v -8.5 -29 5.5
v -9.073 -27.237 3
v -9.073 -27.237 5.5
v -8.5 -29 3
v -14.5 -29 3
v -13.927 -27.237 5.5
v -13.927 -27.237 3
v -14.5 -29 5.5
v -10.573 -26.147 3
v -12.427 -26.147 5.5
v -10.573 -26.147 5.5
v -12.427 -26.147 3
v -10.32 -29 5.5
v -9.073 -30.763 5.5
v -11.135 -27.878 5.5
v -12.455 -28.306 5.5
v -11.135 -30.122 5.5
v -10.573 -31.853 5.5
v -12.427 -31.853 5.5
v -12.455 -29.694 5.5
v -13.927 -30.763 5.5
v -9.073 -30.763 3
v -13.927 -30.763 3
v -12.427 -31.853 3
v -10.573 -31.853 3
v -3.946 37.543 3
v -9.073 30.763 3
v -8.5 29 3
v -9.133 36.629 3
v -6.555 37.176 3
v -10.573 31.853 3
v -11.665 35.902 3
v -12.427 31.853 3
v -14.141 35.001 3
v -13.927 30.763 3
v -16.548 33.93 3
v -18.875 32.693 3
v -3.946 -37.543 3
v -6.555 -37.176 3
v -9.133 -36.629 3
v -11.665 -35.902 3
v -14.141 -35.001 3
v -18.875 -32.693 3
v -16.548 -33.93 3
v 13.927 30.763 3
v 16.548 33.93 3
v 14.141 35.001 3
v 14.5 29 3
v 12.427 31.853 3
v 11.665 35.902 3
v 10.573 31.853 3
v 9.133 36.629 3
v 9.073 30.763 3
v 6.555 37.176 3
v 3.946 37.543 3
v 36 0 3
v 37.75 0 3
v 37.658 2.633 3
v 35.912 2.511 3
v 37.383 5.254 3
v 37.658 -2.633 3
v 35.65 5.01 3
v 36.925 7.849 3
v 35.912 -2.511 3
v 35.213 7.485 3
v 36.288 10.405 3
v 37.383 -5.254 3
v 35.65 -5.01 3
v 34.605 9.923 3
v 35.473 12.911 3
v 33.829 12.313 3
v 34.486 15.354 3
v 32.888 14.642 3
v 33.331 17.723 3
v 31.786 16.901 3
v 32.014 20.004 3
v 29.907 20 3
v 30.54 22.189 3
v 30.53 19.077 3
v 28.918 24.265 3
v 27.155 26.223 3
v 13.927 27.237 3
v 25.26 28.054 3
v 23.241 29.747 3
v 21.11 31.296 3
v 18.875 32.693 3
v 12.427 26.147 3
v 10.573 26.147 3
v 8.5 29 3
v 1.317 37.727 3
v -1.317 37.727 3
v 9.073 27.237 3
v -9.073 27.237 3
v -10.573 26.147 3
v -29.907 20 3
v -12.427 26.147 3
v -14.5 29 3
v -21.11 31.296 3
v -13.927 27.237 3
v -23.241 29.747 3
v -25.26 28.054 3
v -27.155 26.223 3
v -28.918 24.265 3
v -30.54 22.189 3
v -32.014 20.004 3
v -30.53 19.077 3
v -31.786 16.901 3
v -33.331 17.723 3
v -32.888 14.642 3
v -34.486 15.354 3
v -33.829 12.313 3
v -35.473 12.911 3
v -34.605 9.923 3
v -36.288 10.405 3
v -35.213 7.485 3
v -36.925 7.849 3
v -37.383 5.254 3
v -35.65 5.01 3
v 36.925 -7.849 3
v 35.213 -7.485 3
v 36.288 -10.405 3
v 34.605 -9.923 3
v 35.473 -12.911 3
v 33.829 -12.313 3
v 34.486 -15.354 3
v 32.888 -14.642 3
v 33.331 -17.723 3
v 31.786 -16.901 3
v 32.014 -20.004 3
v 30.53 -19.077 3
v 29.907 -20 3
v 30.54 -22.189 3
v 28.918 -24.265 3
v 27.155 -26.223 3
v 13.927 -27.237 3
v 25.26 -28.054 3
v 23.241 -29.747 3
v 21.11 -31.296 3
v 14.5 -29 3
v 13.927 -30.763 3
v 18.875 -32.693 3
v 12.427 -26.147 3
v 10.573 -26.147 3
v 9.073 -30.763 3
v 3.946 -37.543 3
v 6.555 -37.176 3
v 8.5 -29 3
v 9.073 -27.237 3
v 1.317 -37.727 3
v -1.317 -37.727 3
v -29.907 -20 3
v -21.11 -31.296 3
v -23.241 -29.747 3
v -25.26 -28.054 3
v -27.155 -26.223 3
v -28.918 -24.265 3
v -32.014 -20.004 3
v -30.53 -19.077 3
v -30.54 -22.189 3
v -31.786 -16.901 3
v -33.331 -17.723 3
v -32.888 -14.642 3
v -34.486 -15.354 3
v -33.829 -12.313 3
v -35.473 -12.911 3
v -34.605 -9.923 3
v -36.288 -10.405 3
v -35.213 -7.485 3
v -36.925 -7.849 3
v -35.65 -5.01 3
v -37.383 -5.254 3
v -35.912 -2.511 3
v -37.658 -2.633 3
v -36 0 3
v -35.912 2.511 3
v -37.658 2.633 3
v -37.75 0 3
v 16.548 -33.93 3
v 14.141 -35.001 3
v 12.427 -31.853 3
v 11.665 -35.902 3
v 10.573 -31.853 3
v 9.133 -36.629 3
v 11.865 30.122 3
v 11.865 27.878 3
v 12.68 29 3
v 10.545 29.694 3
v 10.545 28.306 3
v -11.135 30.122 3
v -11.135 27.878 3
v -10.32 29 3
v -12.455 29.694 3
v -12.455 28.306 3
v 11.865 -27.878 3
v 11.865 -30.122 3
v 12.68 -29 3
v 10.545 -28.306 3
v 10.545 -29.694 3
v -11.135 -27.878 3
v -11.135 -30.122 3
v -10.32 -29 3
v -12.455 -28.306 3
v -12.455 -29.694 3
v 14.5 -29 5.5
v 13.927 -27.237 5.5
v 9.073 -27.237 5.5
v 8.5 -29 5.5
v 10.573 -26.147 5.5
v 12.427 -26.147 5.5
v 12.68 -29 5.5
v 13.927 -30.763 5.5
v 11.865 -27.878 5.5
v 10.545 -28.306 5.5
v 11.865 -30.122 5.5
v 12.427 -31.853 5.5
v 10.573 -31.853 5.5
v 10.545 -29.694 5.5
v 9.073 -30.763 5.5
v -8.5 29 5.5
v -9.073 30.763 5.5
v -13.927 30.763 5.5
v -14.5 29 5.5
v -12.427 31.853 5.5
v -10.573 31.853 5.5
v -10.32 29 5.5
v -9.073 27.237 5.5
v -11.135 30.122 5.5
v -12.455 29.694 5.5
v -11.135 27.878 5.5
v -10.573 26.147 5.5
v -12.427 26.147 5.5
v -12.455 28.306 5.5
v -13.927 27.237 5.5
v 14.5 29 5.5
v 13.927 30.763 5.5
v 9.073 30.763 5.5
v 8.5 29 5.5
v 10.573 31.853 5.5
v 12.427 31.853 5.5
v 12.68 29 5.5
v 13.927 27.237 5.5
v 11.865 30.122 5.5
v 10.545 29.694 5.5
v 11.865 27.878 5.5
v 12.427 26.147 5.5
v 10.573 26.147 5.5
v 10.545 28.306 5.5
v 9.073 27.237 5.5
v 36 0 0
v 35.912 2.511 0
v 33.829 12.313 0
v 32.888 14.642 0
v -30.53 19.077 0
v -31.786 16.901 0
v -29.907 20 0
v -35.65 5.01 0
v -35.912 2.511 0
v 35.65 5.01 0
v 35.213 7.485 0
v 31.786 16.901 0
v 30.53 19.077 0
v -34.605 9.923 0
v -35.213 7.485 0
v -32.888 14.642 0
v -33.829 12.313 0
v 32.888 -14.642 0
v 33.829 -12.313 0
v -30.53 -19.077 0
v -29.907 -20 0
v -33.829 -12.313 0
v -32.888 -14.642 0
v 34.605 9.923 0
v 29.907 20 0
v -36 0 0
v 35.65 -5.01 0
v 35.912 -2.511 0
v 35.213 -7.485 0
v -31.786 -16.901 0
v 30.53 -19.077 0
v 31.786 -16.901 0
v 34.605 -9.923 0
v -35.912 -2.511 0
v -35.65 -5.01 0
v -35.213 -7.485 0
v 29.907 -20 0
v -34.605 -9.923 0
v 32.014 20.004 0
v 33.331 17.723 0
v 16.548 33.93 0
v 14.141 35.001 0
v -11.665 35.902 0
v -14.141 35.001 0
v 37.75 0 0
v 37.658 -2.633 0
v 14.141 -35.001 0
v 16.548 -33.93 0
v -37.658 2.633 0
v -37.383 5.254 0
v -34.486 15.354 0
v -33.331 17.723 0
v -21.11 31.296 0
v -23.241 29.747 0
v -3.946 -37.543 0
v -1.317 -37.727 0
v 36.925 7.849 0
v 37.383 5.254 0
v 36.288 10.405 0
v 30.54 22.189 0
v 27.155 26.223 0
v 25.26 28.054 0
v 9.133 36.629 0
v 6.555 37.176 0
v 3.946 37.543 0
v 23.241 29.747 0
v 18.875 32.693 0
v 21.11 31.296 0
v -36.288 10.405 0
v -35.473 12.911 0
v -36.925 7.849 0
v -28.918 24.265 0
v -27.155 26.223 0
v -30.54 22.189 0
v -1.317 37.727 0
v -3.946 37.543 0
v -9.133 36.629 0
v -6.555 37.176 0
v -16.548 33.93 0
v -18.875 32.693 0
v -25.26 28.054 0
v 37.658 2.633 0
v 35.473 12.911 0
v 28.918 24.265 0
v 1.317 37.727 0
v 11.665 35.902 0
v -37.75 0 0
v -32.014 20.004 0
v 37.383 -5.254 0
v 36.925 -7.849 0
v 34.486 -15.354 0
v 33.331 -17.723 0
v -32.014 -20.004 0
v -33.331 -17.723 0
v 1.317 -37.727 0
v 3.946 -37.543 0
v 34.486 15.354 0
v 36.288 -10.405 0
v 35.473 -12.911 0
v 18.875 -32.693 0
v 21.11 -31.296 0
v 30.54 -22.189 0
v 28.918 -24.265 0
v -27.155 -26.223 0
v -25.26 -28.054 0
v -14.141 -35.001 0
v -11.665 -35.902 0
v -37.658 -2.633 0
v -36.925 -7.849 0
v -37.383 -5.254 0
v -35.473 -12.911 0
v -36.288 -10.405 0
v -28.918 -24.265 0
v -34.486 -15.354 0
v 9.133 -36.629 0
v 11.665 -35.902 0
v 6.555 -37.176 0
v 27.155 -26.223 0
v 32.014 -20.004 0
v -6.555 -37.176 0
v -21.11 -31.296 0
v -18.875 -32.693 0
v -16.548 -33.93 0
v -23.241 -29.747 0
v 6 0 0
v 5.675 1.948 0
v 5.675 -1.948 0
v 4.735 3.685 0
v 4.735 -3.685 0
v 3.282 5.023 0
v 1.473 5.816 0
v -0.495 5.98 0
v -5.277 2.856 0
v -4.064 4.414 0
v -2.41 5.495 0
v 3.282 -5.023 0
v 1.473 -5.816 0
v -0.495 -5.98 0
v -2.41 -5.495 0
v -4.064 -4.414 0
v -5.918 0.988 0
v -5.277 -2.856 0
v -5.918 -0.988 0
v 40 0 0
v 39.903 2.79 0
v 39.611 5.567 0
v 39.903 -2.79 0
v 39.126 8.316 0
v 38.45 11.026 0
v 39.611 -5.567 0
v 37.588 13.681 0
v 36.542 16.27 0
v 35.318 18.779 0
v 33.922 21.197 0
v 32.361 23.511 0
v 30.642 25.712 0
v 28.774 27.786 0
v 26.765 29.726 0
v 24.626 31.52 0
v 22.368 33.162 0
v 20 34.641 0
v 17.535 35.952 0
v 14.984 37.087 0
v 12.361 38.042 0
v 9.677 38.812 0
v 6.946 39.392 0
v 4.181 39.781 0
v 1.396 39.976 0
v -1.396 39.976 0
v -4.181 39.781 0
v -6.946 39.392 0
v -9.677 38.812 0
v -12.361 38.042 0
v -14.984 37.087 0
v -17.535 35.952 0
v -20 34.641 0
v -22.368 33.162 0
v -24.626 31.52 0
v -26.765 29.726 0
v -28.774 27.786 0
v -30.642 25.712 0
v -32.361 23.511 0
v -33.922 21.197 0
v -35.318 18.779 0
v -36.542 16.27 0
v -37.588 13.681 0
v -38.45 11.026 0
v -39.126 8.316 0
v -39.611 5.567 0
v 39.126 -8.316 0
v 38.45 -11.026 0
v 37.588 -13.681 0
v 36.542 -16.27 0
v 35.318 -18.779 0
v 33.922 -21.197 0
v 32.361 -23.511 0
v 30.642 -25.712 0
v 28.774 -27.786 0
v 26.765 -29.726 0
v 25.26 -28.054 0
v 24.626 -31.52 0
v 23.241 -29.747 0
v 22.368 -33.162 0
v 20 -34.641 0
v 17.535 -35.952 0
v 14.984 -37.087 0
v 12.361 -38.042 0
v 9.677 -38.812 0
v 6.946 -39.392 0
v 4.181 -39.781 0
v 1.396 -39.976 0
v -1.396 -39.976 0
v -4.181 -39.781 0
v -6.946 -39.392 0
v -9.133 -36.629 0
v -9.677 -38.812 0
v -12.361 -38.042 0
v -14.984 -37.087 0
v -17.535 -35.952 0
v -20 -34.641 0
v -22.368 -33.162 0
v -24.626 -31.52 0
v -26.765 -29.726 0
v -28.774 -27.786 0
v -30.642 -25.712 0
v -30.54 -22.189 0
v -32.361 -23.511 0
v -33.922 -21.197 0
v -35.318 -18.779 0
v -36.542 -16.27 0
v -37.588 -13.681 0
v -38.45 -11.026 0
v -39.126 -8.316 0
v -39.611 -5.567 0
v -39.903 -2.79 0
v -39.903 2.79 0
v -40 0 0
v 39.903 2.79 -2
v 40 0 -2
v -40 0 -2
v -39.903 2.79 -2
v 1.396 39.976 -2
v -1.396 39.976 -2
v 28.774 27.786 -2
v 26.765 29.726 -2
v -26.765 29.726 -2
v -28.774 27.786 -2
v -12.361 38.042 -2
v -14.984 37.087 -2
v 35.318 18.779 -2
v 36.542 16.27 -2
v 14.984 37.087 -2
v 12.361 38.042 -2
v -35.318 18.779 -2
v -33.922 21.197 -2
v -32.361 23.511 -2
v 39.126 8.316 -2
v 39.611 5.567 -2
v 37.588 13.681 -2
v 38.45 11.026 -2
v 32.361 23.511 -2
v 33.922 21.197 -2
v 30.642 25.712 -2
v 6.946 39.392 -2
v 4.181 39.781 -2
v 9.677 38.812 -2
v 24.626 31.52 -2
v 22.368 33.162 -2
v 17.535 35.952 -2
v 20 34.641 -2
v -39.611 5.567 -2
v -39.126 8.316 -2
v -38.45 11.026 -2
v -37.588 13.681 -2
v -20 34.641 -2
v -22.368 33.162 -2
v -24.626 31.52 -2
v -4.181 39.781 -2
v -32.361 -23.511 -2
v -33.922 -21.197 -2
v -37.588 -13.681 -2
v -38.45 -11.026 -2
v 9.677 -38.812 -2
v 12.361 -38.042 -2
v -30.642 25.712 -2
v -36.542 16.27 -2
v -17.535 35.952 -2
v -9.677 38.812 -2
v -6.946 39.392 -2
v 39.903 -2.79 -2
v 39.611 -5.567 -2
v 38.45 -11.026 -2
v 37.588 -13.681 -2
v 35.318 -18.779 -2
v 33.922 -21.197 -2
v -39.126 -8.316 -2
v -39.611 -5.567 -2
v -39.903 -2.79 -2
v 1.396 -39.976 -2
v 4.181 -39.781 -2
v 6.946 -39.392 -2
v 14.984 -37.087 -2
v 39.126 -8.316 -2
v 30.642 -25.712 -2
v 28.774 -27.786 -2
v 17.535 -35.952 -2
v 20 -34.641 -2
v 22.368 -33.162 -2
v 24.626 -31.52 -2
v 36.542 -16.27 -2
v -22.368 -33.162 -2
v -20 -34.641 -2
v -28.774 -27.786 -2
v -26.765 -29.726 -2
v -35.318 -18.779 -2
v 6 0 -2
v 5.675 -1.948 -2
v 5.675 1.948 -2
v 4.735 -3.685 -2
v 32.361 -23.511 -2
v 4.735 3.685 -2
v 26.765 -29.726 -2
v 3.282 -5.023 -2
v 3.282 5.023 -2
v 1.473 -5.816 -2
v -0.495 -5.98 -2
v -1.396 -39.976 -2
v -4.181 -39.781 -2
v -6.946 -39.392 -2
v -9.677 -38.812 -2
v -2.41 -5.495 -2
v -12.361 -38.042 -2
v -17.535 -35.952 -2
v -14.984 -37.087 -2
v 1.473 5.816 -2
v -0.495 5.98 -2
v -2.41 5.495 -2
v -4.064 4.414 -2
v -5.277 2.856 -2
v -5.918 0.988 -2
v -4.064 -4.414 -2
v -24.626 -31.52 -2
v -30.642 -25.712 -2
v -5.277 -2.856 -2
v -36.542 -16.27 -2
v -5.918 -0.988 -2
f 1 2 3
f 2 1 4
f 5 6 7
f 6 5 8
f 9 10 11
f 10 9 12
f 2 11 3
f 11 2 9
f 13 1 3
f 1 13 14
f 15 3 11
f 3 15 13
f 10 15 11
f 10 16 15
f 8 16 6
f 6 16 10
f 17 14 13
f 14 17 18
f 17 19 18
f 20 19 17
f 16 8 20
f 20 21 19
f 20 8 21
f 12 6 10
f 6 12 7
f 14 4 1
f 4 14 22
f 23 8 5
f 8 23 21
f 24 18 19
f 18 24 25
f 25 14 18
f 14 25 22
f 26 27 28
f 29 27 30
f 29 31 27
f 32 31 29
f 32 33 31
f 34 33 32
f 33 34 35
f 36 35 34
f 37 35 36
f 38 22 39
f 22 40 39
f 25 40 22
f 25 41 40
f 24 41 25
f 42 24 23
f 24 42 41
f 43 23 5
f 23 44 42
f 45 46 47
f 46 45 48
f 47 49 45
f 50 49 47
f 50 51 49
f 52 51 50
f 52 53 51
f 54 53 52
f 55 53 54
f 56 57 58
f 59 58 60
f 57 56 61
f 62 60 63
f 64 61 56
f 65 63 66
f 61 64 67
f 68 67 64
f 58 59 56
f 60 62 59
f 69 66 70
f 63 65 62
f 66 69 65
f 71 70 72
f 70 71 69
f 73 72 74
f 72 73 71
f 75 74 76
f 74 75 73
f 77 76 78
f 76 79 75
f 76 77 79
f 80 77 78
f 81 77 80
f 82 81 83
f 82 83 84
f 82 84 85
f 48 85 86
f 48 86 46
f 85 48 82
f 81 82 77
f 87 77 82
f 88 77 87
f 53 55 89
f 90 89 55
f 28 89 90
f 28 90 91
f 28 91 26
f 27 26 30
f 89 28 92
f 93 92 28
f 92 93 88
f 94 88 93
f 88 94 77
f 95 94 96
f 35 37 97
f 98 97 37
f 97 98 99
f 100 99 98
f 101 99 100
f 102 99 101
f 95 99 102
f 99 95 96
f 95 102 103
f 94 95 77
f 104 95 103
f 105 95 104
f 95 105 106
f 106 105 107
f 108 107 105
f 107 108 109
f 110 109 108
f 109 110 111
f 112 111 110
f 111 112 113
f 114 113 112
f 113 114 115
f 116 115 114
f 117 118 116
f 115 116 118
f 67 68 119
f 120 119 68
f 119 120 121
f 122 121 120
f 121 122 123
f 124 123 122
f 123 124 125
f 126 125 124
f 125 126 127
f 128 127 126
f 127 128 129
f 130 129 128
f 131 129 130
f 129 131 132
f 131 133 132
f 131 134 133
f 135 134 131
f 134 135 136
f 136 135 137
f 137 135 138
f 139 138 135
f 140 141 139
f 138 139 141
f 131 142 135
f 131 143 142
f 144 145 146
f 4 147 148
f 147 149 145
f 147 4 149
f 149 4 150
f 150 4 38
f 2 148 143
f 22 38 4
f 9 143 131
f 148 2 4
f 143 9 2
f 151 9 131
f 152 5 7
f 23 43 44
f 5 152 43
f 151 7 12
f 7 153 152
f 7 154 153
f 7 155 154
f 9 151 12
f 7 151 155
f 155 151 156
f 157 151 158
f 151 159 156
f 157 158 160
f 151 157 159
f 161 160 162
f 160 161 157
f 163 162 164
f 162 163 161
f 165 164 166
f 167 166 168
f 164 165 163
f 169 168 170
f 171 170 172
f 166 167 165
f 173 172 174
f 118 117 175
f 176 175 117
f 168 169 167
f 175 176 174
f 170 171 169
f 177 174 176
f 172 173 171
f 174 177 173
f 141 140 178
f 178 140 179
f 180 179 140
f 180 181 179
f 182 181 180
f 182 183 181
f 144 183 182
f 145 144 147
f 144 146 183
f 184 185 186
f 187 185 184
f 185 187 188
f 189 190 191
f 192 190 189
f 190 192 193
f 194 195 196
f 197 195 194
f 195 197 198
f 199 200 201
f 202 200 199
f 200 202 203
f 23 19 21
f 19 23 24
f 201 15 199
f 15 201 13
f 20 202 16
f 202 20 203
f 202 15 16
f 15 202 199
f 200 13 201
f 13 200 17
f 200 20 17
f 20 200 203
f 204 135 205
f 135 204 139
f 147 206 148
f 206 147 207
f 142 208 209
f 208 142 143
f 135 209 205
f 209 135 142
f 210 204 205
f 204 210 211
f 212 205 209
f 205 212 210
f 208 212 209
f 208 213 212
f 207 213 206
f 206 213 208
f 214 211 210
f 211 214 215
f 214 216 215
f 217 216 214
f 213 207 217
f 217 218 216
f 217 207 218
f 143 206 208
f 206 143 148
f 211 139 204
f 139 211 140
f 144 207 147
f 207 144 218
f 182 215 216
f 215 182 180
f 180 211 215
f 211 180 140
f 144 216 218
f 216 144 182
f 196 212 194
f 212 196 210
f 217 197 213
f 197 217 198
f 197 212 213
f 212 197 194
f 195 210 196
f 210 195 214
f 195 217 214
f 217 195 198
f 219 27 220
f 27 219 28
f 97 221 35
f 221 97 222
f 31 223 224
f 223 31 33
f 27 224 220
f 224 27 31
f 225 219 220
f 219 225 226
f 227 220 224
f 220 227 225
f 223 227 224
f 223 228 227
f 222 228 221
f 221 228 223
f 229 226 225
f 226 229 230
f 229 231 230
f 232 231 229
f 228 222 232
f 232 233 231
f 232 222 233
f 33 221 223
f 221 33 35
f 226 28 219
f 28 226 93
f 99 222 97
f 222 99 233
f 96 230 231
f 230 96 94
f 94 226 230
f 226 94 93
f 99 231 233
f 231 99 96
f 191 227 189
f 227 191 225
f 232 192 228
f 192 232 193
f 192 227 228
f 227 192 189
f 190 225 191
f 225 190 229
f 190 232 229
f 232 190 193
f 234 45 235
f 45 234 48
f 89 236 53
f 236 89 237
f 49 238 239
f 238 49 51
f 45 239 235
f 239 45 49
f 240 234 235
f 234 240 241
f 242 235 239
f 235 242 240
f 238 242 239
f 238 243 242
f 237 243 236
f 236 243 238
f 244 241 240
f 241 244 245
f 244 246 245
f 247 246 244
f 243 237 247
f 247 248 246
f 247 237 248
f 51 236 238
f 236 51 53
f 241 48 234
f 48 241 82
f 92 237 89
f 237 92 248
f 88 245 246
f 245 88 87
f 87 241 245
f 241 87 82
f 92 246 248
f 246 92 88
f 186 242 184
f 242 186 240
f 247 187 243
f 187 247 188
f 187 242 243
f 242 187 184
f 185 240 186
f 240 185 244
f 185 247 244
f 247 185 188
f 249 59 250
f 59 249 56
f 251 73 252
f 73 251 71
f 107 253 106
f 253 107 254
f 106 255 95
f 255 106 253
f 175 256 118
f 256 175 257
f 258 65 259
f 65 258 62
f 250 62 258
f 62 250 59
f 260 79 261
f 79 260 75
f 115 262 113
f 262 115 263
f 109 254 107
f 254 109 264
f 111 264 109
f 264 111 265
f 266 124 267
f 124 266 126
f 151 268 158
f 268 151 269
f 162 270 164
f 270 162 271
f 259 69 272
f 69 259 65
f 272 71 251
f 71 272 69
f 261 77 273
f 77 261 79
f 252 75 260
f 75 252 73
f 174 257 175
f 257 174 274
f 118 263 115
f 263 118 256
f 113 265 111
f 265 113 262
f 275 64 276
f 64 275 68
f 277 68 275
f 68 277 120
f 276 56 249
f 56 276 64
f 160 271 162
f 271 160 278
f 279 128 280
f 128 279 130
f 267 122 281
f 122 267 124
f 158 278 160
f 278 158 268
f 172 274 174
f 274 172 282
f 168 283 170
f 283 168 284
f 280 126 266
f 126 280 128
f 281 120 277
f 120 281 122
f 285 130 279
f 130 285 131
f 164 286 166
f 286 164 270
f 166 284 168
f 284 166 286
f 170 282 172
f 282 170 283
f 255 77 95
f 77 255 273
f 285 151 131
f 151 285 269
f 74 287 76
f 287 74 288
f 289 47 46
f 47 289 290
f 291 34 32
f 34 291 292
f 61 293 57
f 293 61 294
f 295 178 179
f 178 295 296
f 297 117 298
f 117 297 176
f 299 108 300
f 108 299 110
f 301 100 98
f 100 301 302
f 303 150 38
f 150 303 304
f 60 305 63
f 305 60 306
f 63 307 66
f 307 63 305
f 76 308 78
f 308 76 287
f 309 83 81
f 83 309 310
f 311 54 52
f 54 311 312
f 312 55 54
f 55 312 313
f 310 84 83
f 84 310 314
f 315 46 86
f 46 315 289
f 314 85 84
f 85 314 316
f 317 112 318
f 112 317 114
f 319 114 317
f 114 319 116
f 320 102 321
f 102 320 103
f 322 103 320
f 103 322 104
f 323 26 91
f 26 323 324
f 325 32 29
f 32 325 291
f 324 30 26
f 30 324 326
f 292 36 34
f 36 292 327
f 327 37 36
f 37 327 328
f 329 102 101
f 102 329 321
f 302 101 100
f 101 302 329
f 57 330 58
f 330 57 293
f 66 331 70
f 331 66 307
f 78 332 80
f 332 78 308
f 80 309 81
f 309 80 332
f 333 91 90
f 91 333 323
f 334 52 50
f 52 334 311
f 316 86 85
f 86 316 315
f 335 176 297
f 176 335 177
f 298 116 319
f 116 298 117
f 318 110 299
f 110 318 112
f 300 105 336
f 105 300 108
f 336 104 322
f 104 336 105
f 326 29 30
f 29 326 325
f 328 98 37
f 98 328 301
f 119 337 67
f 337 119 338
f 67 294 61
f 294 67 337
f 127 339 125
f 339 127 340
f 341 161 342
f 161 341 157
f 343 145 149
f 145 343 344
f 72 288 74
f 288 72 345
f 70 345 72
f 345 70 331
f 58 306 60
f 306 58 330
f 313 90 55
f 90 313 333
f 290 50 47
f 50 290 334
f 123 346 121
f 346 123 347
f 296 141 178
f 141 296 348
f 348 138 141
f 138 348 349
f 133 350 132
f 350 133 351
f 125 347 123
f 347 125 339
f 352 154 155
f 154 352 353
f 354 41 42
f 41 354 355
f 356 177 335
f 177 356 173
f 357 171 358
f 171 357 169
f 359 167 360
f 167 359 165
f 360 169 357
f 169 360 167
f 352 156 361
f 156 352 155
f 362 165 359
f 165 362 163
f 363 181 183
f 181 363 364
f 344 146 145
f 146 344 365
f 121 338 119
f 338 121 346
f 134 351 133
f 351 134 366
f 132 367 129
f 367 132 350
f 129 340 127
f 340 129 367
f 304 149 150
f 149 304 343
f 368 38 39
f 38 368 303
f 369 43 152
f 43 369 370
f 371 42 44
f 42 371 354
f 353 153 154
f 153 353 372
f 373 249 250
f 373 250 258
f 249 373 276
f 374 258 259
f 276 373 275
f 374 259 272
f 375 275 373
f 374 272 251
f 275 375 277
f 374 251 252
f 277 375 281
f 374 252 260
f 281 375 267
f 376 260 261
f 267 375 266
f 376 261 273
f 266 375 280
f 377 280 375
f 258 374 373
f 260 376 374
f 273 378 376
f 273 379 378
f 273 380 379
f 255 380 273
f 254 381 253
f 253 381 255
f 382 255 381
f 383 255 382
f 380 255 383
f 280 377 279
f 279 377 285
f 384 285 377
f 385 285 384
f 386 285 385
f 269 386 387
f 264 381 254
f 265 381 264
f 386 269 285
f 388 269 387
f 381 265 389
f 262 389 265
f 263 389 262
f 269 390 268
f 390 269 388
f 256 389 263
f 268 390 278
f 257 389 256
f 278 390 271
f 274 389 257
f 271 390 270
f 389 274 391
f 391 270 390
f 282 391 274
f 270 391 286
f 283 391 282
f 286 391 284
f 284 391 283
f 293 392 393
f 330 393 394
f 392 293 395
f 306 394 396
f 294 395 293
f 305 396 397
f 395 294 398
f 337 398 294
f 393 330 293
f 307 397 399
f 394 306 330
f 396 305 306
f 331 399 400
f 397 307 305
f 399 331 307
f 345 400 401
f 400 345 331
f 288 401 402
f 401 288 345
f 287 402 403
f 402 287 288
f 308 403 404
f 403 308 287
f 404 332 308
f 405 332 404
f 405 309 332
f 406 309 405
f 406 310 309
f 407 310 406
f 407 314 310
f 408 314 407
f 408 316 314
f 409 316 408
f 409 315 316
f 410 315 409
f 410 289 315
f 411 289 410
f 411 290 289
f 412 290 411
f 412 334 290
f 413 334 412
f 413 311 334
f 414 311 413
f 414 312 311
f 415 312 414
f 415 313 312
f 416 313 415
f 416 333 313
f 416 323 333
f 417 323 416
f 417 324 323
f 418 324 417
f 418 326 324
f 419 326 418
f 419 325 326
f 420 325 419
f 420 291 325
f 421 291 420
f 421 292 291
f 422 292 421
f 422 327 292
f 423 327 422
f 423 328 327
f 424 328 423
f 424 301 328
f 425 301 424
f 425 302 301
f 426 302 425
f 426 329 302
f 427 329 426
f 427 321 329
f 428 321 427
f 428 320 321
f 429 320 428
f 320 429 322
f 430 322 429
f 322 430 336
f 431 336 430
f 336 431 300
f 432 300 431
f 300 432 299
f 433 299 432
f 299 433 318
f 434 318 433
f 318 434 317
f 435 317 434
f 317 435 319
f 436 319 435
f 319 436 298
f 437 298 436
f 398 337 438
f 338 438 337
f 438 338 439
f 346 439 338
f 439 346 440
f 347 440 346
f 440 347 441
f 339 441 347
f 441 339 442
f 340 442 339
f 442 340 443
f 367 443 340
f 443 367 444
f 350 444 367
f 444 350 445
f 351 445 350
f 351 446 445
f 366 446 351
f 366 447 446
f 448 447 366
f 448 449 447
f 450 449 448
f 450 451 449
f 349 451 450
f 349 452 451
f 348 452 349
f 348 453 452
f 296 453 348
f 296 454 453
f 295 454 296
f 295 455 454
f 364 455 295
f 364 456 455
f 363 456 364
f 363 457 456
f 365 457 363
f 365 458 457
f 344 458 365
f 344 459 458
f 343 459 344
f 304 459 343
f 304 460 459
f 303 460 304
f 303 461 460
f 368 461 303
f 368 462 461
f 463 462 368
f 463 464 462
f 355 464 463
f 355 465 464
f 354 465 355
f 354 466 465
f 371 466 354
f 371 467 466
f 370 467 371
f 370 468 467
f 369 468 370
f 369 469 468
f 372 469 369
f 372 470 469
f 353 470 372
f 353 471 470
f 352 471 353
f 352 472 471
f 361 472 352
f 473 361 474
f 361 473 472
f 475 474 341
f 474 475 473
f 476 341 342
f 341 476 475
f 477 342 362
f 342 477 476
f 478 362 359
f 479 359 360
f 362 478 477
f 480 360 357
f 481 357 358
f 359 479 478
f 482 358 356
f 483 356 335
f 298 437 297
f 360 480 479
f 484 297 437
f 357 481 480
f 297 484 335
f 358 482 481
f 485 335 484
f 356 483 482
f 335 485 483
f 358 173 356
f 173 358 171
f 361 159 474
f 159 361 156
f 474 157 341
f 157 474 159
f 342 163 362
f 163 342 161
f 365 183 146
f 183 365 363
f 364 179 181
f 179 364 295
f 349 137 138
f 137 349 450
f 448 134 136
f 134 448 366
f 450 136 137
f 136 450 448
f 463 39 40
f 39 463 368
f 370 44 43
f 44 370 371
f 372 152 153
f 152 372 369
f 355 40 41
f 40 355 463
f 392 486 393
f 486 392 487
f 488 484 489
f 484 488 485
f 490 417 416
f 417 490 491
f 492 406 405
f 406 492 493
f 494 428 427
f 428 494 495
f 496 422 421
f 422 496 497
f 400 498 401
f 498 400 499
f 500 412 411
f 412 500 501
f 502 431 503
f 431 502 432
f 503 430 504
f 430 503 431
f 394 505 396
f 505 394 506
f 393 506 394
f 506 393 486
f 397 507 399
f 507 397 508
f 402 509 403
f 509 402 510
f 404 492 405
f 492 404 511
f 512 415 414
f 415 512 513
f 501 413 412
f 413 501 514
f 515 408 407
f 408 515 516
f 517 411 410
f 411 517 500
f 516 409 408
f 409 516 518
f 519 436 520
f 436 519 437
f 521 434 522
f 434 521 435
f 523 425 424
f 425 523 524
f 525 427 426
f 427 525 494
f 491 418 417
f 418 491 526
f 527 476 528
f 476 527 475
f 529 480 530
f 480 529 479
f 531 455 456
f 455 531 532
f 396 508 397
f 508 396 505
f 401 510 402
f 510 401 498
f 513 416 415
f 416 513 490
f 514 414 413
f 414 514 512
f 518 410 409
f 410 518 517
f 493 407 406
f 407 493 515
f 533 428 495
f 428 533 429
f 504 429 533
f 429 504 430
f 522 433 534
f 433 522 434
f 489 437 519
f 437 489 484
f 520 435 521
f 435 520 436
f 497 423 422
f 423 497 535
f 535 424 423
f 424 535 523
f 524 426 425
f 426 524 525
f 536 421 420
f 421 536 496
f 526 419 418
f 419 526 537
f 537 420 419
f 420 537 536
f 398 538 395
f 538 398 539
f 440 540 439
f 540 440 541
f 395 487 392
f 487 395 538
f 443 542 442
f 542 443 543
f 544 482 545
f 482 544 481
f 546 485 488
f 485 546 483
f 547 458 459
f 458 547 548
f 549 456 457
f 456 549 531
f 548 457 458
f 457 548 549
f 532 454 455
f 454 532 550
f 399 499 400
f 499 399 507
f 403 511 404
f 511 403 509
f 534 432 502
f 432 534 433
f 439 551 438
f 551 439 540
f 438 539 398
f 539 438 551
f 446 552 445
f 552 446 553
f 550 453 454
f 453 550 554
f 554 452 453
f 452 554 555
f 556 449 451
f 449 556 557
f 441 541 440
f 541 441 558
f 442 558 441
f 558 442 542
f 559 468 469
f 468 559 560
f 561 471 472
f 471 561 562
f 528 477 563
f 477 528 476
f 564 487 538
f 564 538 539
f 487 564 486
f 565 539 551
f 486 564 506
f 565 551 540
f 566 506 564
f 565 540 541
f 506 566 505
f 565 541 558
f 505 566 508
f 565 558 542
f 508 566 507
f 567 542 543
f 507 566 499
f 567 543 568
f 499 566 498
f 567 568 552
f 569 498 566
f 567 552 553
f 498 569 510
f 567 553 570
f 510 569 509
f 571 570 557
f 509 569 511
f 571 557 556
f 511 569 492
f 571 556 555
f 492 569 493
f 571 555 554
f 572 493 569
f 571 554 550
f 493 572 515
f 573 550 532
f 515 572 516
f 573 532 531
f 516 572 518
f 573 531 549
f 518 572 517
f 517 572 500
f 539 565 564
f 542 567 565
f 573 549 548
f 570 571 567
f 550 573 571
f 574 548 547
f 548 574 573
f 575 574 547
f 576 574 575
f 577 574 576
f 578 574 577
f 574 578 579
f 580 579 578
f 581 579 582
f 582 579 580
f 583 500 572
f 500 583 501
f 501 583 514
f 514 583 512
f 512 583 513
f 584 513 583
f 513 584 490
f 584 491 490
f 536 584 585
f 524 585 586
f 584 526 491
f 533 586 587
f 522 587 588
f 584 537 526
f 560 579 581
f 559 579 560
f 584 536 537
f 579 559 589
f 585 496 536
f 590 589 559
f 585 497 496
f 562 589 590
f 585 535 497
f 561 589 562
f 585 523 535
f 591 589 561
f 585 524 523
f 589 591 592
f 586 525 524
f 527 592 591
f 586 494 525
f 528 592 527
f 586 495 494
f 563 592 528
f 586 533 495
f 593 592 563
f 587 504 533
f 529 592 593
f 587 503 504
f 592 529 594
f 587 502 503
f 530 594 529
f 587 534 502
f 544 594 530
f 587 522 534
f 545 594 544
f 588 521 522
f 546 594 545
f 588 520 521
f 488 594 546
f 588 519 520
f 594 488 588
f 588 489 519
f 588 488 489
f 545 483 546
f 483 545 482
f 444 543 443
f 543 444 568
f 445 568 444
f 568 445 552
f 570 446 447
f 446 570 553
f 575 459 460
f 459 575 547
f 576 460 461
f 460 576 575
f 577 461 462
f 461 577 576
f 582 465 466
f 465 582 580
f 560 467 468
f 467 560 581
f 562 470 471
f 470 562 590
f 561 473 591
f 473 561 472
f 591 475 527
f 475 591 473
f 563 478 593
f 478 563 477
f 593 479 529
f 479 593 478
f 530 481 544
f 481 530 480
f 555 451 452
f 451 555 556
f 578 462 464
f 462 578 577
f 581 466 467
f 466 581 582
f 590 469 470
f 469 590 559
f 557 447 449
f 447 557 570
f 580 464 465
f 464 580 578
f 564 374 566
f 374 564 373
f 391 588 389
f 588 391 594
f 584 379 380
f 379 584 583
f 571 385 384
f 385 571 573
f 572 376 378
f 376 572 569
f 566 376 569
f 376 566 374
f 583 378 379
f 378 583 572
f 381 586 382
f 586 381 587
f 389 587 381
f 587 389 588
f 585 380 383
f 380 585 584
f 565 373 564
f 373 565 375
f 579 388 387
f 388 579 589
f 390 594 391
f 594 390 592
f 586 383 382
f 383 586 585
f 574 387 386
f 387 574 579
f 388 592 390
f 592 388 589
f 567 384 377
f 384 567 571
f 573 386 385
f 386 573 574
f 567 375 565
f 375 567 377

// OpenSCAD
thickness = 2;
body_radius = 40;
body_border = 2;

difference() {
    union() {
        translate([0, 0, -thickness/2]) cylinder(h=thickness, r=body_radius, center=true, $fn=90);
        
        translate([0, 0, 3]) {
            translate([-23/2, -58/2, 0]) screw();
            translate([ 23/2, -58/2, 0]) screw();
            translate([-23/2,  58/2, 0]) screw();
            translate([ 23/2,  58/2, 0]) screw();
        }
        
        translate([0, 0, 0]) difference() {
            cylinder(r = body_radius-body_border-0.25, h=3, $fn=90);
            intersection() {
                cylinder(r = body_radius-body_border-2, h=20, center=true, $fn=90);
                cube([100, body_radius, 100], center=true);
            }
        }
    }
    union() {
        cylinder(h=100, r=6, center=true);
    }
}

module screw(height = 2.5)
{
    translate([0, 0, height/2]) difference() {
            cylinder(h = height, r=3.00, center=true);
            cylinder(h = height+0.1, r=1.18, center=true);
    }
}
